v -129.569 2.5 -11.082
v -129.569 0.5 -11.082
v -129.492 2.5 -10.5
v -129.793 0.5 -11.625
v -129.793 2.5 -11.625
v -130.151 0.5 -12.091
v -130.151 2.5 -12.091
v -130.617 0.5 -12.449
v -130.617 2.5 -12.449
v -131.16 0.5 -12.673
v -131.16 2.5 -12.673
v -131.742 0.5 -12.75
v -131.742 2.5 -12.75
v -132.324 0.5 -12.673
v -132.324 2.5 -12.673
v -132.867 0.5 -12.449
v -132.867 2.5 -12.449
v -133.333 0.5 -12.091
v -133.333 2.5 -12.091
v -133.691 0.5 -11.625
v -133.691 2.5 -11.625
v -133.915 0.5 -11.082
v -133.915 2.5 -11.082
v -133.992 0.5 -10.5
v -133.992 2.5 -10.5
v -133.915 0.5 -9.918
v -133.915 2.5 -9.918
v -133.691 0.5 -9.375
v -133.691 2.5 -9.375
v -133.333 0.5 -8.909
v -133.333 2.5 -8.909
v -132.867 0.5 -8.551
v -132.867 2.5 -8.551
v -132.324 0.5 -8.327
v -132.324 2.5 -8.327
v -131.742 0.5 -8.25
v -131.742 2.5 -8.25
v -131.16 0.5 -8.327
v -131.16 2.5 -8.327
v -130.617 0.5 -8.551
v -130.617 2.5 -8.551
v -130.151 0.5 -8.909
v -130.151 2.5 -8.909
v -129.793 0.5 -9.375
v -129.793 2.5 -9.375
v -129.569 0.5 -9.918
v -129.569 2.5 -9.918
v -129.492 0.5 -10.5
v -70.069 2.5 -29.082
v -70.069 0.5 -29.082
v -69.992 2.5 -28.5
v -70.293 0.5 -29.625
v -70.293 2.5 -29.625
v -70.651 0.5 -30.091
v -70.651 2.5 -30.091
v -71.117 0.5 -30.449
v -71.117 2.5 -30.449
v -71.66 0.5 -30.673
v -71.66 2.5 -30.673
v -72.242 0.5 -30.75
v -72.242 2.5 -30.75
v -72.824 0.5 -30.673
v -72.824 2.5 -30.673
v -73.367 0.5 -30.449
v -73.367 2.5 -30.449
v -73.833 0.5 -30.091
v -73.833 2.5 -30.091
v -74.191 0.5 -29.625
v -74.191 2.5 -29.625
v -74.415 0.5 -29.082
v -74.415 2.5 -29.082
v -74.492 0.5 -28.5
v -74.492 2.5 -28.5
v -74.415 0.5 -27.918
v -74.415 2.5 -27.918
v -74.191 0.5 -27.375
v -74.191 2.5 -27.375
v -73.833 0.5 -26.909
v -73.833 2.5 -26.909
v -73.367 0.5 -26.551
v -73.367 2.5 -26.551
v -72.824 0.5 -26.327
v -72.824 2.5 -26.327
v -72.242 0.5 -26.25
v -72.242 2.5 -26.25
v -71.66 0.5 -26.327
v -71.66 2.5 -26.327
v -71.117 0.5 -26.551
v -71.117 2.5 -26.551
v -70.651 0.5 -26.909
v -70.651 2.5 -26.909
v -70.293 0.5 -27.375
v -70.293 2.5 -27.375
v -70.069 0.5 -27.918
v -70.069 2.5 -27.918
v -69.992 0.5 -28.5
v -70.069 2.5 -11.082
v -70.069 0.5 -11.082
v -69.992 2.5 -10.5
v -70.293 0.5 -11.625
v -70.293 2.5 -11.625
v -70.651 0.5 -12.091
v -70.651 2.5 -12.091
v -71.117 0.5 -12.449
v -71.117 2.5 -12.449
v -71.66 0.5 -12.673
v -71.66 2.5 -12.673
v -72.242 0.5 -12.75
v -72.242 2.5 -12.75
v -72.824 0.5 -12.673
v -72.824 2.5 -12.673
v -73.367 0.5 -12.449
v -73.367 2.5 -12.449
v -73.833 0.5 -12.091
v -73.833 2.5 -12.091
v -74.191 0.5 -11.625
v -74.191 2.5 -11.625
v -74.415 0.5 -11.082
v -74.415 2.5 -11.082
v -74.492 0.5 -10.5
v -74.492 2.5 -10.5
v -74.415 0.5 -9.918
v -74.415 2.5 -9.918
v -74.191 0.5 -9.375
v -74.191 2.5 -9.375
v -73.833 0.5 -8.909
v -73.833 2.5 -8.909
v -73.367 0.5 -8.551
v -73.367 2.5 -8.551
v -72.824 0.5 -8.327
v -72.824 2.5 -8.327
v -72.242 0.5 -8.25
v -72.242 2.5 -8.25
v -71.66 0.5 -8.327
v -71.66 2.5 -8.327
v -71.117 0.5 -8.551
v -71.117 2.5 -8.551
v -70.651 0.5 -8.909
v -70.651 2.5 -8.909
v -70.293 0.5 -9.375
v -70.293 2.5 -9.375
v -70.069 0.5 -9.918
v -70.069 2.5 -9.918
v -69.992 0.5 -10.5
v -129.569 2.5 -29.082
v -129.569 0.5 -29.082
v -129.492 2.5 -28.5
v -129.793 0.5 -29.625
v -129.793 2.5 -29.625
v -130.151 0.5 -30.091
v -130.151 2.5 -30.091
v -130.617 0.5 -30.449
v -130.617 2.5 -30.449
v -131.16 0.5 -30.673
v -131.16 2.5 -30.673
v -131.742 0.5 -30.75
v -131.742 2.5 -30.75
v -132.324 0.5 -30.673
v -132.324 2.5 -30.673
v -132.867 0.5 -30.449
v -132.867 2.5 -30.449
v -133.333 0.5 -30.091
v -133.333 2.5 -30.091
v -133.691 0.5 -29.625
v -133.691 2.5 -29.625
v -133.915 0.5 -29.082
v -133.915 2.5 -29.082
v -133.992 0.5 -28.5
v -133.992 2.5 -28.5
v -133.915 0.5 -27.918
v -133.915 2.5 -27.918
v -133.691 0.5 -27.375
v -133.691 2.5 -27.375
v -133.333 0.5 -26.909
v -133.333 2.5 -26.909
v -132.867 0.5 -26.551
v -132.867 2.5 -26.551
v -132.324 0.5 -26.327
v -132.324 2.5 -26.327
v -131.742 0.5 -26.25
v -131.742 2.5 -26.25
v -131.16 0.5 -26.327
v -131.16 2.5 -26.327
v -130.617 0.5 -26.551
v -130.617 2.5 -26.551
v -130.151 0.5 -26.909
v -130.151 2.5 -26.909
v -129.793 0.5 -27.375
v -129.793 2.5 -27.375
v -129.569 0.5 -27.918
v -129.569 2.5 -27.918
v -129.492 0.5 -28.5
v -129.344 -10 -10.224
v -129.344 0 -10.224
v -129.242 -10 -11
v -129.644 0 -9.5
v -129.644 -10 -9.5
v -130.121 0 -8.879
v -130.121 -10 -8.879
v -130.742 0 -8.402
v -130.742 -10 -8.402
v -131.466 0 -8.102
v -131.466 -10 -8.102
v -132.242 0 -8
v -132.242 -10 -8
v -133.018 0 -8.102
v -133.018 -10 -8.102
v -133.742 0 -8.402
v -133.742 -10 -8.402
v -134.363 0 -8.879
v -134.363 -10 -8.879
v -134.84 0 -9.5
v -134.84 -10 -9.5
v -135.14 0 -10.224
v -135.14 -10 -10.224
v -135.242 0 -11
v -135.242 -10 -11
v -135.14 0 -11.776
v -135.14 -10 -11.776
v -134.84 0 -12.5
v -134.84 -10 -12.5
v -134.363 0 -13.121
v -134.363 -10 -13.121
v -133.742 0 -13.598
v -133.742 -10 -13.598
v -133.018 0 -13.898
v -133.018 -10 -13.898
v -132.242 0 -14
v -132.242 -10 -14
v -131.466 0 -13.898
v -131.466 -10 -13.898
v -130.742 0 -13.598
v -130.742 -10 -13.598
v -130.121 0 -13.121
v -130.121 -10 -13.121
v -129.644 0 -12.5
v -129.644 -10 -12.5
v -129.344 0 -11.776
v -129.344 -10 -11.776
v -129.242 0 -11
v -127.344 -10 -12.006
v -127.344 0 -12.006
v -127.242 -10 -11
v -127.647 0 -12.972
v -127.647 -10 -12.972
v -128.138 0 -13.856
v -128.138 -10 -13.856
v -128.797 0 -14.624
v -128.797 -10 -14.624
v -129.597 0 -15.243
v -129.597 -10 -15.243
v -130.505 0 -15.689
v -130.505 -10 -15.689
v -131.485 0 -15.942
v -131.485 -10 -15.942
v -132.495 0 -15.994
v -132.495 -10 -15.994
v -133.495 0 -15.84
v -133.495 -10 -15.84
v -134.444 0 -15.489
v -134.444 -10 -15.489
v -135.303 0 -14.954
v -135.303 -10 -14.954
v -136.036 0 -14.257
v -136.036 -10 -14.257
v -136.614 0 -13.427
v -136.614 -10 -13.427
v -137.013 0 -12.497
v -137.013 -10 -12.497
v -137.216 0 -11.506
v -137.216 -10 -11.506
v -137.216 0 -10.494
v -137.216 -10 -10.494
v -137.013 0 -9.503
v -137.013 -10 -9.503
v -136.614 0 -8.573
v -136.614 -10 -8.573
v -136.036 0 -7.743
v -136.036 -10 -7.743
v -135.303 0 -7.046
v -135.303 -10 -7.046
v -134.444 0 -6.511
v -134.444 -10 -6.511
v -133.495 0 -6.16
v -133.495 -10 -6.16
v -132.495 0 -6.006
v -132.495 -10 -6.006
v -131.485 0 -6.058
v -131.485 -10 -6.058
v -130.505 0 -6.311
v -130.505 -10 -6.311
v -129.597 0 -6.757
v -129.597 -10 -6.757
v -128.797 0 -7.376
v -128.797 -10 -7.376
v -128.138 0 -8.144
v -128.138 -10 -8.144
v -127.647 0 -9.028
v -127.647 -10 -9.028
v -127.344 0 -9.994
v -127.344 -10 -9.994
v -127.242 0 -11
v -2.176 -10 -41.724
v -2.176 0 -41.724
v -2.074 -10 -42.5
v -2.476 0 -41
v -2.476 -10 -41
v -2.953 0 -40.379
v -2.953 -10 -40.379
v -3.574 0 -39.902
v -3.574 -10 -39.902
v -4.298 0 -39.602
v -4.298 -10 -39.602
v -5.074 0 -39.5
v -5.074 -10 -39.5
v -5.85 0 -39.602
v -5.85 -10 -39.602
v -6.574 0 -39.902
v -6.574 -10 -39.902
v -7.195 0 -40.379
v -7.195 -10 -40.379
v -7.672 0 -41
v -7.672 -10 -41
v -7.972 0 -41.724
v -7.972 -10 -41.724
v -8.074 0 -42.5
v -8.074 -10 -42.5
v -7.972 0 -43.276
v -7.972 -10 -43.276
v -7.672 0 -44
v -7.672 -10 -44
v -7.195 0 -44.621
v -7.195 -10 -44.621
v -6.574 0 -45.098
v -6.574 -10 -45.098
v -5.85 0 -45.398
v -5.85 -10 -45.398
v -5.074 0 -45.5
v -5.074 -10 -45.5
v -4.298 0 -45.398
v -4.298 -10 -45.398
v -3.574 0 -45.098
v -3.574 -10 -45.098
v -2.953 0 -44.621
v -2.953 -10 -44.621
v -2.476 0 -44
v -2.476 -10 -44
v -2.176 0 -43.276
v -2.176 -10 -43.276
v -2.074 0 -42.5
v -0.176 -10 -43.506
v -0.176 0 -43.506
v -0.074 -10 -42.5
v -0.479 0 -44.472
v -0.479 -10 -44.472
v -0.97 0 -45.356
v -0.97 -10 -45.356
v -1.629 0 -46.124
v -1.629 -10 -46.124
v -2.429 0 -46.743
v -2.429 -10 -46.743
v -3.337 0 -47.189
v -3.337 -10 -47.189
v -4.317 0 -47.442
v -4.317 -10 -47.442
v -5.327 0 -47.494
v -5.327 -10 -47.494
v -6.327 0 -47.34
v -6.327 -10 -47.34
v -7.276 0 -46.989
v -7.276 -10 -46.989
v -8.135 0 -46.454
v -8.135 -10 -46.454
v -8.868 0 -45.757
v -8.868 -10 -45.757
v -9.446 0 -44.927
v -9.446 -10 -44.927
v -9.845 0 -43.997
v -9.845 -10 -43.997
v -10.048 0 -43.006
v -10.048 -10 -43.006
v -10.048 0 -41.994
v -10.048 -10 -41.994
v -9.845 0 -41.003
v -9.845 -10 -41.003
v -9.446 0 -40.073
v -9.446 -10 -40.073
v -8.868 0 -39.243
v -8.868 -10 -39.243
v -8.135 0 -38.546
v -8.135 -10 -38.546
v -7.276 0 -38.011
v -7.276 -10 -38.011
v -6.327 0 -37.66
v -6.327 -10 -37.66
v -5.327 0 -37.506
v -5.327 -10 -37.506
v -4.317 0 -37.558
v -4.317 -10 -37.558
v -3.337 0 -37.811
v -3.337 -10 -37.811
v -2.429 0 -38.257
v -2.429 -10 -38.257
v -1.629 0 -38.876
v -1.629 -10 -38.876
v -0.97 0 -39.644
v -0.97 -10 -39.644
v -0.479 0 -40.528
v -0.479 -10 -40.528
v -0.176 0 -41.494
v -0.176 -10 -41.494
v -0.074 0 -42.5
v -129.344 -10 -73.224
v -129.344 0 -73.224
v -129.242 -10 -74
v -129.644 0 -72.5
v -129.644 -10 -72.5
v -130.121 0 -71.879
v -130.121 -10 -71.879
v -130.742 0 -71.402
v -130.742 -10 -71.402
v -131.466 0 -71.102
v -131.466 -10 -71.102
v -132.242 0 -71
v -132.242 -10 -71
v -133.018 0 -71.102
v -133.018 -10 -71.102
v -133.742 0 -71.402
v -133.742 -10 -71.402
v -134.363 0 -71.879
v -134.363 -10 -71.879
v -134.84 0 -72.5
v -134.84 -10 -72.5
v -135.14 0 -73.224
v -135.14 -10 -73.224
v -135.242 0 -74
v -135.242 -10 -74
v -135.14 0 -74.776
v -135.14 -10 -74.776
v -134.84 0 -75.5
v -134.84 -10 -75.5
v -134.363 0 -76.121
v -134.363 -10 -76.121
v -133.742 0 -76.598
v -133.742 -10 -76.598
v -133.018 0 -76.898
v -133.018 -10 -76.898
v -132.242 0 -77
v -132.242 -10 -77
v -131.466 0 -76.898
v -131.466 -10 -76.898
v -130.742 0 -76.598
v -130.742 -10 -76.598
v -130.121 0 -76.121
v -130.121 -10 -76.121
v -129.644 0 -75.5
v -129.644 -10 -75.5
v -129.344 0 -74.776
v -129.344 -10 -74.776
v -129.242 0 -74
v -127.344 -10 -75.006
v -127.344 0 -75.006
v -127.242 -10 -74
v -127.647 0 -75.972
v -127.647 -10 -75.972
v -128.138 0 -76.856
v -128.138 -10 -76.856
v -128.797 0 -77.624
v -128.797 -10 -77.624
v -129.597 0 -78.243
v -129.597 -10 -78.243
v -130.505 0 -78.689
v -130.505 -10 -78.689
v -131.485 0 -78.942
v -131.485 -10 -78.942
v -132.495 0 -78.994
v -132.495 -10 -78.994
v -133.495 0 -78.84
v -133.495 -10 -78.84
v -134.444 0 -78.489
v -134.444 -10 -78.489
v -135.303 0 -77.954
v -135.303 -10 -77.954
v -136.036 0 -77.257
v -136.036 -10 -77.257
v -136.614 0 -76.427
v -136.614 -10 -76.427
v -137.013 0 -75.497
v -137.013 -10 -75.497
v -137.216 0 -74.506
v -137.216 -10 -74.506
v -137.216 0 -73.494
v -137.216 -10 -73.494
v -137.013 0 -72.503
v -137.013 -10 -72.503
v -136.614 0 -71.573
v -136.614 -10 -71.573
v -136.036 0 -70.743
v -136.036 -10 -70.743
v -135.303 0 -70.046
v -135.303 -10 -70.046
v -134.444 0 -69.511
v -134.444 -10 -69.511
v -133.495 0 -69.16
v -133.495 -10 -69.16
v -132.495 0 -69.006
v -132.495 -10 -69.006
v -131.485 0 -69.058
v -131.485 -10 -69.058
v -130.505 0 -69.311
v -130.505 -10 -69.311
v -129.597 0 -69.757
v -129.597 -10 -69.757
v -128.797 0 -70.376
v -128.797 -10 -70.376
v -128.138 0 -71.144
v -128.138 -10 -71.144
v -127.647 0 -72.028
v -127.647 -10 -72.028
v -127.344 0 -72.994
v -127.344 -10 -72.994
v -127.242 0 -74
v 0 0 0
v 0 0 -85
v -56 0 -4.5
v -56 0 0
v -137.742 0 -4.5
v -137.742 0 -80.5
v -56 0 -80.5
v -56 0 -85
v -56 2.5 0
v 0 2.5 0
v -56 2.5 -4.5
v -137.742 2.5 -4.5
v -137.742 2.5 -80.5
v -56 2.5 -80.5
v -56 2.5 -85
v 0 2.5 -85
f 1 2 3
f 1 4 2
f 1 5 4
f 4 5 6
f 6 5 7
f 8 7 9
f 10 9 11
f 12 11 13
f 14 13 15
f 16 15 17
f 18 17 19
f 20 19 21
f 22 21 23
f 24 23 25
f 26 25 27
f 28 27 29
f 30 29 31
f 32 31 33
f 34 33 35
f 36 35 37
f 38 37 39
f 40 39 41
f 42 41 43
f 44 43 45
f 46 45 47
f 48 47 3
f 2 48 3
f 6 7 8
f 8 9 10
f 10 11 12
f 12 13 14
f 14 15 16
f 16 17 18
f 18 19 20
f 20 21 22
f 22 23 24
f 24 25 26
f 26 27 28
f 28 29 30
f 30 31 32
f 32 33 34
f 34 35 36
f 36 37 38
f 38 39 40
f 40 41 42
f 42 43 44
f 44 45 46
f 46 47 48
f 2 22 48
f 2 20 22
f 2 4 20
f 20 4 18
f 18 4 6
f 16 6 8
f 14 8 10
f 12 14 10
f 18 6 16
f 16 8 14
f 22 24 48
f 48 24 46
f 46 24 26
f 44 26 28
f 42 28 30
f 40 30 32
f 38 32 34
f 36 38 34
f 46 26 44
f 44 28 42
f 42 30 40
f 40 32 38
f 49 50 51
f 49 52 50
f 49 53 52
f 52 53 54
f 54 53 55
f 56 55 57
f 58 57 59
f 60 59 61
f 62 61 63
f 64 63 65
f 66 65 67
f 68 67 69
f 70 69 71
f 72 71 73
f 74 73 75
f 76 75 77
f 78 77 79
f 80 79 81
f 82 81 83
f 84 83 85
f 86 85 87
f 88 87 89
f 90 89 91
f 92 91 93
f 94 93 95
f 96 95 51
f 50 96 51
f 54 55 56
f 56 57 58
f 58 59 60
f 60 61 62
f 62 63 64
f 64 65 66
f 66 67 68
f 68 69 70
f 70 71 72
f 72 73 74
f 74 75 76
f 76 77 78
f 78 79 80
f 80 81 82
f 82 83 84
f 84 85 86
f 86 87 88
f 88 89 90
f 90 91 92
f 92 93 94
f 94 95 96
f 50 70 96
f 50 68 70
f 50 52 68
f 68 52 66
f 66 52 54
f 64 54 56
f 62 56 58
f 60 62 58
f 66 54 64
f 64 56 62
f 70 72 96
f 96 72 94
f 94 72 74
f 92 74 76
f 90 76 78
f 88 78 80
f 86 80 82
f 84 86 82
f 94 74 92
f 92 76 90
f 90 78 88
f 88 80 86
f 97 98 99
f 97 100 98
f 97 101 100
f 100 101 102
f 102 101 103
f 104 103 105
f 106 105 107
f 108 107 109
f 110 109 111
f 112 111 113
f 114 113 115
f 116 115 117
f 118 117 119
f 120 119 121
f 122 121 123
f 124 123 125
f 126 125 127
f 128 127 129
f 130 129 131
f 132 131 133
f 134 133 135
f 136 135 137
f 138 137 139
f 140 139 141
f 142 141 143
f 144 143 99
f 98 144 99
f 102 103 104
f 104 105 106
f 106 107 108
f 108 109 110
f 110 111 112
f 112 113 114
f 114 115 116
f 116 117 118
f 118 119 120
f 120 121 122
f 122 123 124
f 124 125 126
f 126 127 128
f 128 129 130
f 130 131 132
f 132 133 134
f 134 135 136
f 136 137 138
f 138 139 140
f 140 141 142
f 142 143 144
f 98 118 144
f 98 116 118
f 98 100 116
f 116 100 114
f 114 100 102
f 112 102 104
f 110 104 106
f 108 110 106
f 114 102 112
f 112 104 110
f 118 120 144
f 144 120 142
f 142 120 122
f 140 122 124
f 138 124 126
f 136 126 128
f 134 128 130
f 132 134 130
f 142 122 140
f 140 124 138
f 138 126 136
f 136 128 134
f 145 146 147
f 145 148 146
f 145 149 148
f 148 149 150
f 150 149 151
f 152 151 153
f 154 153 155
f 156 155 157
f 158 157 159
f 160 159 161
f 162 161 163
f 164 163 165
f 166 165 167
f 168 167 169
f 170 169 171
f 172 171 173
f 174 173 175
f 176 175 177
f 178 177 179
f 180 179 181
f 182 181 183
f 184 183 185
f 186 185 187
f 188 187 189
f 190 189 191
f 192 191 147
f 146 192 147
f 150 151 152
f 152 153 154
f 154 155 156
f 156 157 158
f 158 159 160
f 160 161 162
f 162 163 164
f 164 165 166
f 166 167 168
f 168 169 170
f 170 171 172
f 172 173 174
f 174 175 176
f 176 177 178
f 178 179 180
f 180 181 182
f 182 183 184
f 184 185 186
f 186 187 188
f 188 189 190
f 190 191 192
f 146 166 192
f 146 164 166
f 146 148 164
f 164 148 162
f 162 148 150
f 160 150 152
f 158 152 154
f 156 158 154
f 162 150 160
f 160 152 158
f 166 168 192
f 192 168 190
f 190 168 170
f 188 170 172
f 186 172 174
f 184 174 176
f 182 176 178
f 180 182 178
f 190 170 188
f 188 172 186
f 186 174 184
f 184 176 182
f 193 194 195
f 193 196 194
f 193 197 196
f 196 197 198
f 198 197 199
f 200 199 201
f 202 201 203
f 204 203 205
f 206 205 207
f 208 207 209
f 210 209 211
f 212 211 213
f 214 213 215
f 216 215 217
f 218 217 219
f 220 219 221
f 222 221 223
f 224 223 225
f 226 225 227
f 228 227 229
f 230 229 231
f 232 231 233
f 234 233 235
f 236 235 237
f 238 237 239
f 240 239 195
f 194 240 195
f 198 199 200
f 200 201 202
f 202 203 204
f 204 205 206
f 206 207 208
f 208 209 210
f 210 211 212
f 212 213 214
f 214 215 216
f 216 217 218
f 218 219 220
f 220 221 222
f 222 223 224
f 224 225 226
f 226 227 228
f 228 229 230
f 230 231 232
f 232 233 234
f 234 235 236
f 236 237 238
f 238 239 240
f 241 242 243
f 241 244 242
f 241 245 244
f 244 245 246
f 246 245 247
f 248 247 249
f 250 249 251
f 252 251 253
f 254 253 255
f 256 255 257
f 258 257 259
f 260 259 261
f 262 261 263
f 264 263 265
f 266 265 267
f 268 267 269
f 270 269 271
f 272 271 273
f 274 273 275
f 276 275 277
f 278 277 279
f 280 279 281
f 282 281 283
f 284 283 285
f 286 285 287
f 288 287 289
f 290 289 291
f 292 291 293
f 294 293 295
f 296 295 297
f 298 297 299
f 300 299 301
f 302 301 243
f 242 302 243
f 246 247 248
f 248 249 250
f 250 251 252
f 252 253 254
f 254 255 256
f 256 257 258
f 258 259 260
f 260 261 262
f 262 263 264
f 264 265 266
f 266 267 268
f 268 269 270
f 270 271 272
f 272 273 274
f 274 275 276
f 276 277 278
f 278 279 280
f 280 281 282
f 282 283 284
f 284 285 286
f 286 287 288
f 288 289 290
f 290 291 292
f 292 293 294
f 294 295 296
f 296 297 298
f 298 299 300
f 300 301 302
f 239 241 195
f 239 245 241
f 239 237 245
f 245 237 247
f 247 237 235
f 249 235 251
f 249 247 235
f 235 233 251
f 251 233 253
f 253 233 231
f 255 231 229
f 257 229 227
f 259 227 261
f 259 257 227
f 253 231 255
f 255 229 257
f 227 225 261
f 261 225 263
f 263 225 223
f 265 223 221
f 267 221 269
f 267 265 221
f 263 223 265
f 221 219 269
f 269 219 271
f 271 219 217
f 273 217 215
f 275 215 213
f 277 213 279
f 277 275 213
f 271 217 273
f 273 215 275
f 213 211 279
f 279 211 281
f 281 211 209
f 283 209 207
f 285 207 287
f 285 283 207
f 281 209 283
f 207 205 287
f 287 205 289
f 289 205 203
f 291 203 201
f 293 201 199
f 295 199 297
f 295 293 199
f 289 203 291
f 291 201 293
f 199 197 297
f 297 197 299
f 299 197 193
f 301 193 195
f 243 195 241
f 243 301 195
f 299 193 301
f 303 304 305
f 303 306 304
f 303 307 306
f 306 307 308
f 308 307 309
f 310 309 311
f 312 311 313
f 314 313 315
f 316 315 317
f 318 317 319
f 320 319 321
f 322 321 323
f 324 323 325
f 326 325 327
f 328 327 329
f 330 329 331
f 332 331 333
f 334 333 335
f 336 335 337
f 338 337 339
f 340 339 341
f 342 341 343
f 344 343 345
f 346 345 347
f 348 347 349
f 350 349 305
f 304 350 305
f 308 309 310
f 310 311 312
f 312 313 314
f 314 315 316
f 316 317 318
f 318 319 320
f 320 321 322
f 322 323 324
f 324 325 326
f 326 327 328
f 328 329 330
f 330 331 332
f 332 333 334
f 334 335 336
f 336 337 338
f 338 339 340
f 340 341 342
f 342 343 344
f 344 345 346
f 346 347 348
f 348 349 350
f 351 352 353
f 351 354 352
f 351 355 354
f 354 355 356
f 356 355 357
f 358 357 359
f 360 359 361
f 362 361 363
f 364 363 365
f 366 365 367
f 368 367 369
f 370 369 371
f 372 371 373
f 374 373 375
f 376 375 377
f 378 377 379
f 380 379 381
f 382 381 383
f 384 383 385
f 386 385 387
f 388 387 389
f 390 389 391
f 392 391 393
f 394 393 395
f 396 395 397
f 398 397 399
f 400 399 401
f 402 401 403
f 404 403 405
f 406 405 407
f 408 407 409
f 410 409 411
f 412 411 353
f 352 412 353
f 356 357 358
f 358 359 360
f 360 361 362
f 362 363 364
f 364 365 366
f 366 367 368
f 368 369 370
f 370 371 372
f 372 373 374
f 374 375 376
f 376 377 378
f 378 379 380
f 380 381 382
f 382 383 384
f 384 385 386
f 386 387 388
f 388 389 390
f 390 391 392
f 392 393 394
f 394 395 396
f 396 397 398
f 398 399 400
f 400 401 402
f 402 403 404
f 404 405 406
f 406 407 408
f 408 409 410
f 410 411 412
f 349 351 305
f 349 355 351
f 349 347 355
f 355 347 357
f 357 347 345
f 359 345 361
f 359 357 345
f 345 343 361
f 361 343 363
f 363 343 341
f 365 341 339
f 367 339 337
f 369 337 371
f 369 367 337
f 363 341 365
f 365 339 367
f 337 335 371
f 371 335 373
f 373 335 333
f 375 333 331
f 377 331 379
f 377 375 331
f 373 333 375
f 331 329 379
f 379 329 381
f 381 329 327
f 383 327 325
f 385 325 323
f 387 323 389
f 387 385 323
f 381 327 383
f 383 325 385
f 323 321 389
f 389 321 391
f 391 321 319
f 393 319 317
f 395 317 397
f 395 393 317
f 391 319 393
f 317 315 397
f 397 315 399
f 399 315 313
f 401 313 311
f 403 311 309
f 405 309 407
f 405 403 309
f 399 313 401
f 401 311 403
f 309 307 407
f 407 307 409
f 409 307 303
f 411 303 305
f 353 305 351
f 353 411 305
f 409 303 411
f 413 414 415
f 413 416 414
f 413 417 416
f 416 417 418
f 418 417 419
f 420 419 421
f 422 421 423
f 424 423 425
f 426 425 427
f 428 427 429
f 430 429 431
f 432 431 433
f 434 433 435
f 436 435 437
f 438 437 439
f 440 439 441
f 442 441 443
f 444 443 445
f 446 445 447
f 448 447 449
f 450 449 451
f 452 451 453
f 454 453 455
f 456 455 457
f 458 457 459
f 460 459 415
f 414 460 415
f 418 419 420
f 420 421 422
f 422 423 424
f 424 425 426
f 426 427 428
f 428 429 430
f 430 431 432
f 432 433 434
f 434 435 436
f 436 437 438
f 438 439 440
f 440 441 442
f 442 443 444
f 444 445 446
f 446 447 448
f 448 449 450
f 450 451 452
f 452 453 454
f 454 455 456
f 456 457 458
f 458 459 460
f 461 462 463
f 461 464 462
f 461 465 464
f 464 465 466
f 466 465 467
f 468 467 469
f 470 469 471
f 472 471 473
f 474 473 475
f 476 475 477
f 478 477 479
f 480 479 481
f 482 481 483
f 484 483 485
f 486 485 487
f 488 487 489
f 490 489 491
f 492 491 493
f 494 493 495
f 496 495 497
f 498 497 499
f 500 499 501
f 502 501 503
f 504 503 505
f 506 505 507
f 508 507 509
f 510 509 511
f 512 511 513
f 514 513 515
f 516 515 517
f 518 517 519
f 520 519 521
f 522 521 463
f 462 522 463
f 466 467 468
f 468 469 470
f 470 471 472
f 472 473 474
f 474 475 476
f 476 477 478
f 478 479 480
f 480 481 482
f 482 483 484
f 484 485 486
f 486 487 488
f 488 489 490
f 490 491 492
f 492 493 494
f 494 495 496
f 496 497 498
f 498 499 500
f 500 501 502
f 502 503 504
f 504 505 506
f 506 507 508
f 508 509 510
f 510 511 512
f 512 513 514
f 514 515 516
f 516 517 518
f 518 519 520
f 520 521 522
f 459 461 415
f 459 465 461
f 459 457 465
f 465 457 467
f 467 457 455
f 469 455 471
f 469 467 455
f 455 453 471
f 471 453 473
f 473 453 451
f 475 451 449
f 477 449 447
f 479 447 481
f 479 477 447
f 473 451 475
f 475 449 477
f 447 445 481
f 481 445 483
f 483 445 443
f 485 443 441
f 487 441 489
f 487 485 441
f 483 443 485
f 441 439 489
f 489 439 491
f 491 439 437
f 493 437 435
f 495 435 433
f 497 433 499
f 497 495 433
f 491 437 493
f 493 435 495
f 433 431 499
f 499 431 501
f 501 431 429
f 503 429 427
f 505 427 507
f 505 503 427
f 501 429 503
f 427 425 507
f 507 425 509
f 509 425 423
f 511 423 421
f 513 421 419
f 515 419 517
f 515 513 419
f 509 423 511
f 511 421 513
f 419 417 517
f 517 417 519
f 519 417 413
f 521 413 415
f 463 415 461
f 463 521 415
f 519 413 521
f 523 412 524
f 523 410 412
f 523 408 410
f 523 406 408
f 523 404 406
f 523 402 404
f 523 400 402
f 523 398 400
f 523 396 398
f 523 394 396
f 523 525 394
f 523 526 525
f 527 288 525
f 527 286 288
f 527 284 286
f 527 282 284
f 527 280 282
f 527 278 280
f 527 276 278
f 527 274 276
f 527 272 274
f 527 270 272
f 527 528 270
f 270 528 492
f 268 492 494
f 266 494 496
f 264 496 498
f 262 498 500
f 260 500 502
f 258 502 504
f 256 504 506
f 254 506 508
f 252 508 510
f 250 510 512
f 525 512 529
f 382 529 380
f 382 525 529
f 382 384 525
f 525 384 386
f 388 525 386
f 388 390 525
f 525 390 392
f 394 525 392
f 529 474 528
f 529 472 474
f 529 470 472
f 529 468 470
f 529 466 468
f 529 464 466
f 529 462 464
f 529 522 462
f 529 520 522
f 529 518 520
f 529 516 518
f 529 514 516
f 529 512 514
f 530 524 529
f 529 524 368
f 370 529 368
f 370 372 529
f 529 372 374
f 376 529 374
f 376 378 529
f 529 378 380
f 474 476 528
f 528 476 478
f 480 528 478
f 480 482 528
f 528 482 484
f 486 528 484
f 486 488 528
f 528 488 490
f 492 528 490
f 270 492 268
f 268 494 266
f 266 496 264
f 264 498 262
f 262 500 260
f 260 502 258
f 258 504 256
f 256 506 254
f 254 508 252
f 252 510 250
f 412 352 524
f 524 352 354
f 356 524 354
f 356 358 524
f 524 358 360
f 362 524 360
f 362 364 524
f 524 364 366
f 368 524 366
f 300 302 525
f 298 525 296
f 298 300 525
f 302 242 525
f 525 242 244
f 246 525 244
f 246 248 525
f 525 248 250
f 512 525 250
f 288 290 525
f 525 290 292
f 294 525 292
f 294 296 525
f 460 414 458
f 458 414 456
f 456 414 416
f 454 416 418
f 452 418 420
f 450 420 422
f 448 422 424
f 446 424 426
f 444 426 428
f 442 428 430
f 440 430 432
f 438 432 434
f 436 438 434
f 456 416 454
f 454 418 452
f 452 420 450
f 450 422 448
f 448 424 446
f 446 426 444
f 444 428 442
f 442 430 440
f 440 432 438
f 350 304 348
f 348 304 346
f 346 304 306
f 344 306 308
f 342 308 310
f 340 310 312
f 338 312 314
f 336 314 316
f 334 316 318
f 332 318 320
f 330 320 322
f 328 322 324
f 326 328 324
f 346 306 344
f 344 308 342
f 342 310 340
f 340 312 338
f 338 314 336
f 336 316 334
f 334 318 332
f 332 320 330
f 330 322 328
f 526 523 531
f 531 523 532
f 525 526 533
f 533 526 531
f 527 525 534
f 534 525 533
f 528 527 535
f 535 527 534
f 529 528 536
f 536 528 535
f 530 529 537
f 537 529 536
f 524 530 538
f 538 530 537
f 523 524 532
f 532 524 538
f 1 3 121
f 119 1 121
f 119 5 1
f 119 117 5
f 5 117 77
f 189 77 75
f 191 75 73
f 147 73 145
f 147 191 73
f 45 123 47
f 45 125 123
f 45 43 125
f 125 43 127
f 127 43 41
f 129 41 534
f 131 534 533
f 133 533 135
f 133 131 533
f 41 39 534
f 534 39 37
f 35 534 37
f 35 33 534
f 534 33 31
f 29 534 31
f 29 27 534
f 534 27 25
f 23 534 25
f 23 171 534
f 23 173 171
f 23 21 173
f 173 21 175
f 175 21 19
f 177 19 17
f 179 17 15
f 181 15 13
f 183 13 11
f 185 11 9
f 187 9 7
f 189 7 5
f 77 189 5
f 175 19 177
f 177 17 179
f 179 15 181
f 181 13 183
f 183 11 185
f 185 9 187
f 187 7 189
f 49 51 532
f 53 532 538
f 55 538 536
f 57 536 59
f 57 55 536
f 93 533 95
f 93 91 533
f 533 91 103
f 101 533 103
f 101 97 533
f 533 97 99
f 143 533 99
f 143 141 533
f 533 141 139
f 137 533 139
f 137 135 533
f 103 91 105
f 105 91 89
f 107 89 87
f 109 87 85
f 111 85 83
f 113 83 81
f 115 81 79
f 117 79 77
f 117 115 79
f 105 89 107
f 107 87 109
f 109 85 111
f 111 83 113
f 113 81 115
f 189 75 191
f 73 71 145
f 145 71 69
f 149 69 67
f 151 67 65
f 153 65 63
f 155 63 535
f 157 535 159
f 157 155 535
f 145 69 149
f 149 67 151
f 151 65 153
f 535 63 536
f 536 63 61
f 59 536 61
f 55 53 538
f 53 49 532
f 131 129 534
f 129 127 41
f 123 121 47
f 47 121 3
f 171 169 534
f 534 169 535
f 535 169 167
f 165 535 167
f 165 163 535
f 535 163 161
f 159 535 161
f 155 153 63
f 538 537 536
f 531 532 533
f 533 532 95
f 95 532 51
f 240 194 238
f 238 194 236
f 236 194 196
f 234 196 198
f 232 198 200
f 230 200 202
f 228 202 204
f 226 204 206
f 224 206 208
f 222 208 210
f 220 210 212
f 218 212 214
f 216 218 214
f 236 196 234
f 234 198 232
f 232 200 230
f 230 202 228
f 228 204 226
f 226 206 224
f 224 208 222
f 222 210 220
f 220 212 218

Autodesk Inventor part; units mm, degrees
ref_plane "YZ Plane" through (0, 0, 0) normal (1, 0, 0) x (0, 1, 0)
ref_plane "XZ Plane" through (0, 0, 0) normal (0, 1, 0) x (-1, 0, 0)
ref_plane "XY Plane" through (0, 0, 0) normal (0, 0, 1) x (1, 0, 0)
sketch "Sketch1" plane through (0, 0, 0) normal (0, 1, 0) x (-1, 0, 0)
  line L0 (0, 0) -> (56, 0)
  line L1 (137.742, -4.5) -> (137.742, -80.5)
  line L2 (56, -85) -> (0, -85)
  line L3 (0, -85) -> (0, 0)
  line L4 (0, 0) -> (56, 0)
  line L5 (56, 0) -> (56, -4.5)
  line L6 (56, -85) -> (56, -80.5)
  line L7 (56, -80.5) -> (137.742, -80.5)
  line L8 (56, -4.5) -> (137.742, -4.5)
  line L9 (56, 0) -> (56, -4.5)
  line L10 (56, -80.5) -> (56, -85)
  dimension "d19" = 56
  dimension "d20" = 4.5
  dimension "d21" = 4.5
  dimension "d54" = 76
  dimension "d55" = 81.742
  dimension "d56" = 85
extrude "Extrusion1" add sketch "Sketch1" along normal blind 2.5
sketch "Sketch3" plane through (0, 2.5, 0) normal (0, 1, 0) x (1, 0, 0)
  line L0 (-56, 85) -> (-56, 80.5) projected
  line L1 (0, 0) -> (0, 85) projected
  circle A0 centre (-131.742, 10.5) radius 2.2
  line L2 (-137.742, 80.5) -> (-137.742, 4.5) projected
  line L3 (-137.742, 4.5) -> (-56, 4.5) projected
  line L4 (-131.742, 10.5) -> (-72.242, 10.5)
  line L5 (-101.992, 10.5) -> (-101.992, 4.5)
  circle A1 centre (-72.242, 10.5) radius 2.2
  line L6 (-72.242, 10.5) -> (-72.242, 28.5)
  circle A2 centre (-72.242, 28.5) radius 2.2
  circle A3 centre (-131.742, 28.5) radius 2.2
  point P0 (-56, 88)
  dimension "d22" = 56
  dimension "d23" = 4.4
  dimension "d24" = 6
  dimension "d25" = 6
  dimension "d26" = 59.5
  dimension "d28" = 18
  dimension "d29" = 4.4
  dimension "d42" = 4.4
  dimension "d43" = 4.4
sketch "Sketch4" plane through (0, 0, 0) normal (0, -1, 0) x (1, 0, 0)
  line L0 (0, 0) -> (0, -85) projected
  line L1 (0, -42.5) -> (-5.074, -42.5)
  circle A0 centre (-5.074, -42.5) radius 3
  circle A1 centre (-5.074, -42.5) radius 5
  circle A2 centre (-132.242, -74) radius 3
  line L2 (-56, -80.5) -> (-137.742, -80.5) projected
  line L3 (-137.742, -80.5) -> (-137.742, -4.5) projected
  circle A3 centre (-132.242, -74) radius 5
  circle A4 centre (-132.242, -11) radius 3
  circle A5 centre (-132.242, -11) radius 5
  line L4 (-137.742, -4.5) -> (-56, -4.5) projected
  dimension "d33" = 5.074
  dimension "d34" = 6
  dimension "d35" = 10
  dimension "d36" = 6
  dimension "d37" = 6.5
  dimension "d38" = 5.5
  dimension "d39" = 10
  dimension "d57" = 63
  dimension "d58" = 6.5
  dimension "d59" = 5.5
extrude "Extrusion3" add sketch "Sketch4" along normal blind 10
hole "Hole1" at (-72.242, 2.5, -28.5) at (-72.242, 2.5, -10.5) at (-131.742, 2.5, -10.5) at (-131.742, 2.5, -28.5) direction (0, -1, 0) diameter 4.5 depth 2
properties part number "TopChassis"
